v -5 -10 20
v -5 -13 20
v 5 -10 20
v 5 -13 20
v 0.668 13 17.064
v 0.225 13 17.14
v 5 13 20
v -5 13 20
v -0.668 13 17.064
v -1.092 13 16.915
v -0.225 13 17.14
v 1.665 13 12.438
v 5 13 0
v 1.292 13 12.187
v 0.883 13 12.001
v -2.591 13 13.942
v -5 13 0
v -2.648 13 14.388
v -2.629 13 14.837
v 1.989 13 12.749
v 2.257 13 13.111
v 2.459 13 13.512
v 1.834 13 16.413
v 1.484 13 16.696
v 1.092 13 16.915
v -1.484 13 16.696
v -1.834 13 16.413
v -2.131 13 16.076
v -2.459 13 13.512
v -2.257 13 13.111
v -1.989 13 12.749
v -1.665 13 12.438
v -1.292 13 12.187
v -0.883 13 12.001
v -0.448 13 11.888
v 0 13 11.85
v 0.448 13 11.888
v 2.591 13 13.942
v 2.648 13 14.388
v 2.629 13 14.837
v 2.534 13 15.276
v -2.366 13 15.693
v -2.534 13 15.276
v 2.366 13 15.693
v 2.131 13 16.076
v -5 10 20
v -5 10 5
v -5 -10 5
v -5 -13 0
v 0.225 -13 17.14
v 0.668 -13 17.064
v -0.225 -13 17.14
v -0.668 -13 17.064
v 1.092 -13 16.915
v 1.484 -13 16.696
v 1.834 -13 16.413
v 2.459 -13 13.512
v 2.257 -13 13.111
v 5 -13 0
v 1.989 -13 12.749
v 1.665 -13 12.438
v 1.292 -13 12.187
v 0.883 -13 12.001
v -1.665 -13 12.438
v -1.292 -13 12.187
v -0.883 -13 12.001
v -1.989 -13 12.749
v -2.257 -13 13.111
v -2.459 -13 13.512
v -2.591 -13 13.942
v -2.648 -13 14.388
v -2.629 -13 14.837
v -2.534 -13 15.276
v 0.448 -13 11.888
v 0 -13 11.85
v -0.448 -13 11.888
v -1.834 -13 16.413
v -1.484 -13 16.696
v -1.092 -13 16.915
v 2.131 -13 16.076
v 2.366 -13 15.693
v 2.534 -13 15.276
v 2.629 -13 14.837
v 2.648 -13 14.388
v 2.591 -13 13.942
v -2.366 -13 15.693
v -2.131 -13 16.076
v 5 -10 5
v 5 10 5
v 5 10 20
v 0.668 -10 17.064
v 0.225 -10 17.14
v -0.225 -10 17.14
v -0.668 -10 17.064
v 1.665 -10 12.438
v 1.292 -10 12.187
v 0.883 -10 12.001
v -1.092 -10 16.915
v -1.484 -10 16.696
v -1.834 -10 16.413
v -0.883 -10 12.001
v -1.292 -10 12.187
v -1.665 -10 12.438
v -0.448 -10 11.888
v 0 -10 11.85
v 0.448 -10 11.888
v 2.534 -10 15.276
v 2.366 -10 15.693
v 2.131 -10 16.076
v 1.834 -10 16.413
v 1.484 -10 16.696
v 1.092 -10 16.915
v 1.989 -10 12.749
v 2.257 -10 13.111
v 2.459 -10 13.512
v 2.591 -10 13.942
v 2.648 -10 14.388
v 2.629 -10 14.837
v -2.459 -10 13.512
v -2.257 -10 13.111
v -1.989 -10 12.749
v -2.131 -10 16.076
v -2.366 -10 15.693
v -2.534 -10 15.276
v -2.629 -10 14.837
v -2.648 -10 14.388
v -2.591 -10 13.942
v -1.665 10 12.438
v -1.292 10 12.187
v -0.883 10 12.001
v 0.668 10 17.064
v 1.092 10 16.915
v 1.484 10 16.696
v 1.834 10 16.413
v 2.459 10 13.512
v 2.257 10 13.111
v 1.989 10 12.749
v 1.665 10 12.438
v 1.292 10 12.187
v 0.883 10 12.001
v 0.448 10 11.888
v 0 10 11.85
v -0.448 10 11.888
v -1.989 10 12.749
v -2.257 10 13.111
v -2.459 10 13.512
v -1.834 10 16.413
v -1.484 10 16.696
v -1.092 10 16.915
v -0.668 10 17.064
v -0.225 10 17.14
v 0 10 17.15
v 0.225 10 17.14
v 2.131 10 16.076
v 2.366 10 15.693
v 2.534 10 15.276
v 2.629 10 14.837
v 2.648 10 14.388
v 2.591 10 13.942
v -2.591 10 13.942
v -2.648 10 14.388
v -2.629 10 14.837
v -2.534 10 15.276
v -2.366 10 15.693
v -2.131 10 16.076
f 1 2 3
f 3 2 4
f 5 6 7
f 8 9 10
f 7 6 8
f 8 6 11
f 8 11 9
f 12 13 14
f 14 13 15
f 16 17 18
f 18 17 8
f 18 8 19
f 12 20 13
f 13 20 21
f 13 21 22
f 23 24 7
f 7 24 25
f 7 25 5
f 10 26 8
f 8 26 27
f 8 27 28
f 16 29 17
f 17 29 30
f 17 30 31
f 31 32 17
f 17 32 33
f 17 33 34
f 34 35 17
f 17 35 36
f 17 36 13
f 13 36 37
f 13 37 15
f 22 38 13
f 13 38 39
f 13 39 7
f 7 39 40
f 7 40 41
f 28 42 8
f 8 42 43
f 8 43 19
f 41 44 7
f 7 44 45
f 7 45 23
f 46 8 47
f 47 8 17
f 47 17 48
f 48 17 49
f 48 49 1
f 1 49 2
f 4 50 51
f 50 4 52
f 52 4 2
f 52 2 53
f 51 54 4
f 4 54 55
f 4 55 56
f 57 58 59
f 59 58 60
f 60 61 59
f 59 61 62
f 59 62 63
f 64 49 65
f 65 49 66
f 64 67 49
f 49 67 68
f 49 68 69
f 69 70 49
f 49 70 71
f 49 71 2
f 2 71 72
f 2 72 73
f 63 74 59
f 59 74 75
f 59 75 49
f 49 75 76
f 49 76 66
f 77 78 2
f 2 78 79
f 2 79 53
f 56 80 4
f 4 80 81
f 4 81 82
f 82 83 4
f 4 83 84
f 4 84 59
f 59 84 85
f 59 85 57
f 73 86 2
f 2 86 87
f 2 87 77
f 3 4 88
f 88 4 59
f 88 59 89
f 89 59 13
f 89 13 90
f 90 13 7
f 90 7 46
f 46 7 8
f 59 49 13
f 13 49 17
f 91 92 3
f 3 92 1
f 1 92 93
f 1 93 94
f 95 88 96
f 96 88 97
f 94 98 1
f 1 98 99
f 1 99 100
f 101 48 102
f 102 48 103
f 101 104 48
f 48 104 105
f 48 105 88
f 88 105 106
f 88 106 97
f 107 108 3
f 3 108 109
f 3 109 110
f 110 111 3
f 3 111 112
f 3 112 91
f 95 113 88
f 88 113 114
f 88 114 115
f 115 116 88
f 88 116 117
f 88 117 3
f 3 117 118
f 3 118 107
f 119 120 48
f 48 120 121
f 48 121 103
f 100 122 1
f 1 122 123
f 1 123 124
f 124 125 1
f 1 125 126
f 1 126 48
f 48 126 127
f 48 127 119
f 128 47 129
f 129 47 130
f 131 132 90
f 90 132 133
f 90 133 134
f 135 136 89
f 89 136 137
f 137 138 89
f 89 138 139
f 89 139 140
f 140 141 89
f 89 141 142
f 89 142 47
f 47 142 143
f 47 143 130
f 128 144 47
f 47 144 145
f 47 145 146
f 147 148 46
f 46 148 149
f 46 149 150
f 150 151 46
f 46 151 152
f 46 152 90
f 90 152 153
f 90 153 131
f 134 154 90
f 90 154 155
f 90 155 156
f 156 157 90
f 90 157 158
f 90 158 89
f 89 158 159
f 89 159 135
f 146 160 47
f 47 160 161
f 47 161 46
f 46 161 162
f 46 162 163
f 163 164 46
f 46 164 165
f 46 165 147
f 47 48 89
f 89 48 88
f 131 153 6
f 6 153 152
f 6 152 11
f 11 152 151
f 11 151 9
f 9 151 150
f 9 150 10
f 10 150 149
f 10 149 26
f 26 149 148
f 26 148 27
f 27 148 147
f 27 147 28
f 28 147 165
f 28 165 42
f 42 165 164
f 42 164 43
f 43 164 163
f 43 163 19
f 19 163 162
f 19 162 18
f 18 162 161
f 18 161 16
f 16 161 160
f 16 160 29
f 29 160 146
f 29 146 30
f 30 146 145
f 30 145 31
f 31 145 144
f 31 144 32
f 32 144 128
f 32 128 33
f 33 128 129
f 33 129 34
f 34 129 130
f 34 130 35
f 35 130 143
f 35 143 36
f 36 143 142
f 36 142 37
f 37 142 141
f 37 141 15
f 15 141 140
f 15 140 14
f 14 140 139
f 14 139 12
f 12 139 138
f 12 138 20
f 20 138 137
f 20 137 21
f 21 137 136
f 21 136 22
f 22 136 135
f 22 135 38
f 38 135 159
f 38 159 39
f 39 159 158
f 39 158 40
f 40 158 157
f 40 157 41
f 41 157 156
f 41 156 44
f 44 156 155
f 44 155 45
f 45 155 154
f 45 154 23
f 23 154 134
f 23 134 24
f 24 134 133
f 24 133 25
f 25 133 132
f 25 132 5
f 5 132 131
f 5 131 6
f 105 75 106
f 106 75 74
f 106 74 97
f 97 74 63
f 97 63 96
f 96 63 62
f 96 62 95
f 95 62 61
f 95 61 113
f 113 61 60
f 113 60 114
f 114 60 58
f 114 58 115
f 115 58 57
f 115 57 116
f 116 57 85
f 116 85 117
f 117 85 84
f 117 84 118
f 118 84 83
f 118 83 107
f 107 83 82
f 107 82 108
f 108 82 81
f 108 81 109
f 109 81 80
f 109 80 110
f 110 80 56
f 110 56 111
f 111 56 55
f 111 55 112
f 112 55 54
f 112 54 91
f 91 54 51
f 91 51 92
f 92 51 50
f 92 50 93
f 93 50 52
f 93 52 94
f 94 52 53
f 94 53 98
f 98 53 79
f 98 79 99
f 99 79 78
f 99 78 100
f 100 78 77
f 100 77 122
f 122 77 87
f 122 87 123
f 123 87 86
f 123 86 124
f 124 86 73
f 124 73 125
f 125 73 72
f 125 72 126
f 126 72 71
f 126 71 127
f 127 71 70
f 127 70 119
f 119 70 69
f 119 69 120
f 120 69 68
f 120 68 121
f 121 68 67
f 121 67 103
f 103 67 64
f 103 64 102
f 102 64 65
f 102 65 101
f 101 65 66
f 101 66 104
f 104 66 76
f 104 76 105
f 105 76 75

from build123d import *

# Parameters (mm, degrees)
SKETCH2_W           = 26
SKETCH2_H           = 10
BOSS_EXTRUDE1_DEPTH = 20
SKETCH3_W           = 10
SKETCH3_H           = 20
CUT_EXTRUDE1_DEPTH  = 15
SKETCH4_R           = 2.65
CUT_EXTRUDE2_DEPTH  = 34.181320046


with BuildPart() as part:
    # Sketch2 → Boss-Extrude1 (new body)
    with BuildSketch(Plane(origin=(0, 0, 0), x_dir=(0, 1, 0), z_dir=(0, 0, 1))):
        Rectangle(SKETCH2_W, SKETCH2_H)
    extrude(amount=BOSS_EXTRUDE1_DEPTH)

    # Sketch3 → Cut-Extrude1 (cut)
    with BuildSketch(Plane.XY.offset(20)):
        Rectangle(SKETCH3_W, SKETCH3_H)
    extrude(amount=-CUT_EXTRUDE1_DEPTH, mode=Mode.SUBTRACT)

    # Sketch4 → Cut-Extrude2 (cut, through all)
    with BuildSketch(Plane.XZ.offset(13)):
        with Locations(Location((0, 14.5, 0), (0, 0, 270))):
            Circle(SKETCH4_R)
    extrude(amount=-CUT_EXTRUDE2_DEPTH, mode=Mode.SUBTRACT)


solid = part.part
